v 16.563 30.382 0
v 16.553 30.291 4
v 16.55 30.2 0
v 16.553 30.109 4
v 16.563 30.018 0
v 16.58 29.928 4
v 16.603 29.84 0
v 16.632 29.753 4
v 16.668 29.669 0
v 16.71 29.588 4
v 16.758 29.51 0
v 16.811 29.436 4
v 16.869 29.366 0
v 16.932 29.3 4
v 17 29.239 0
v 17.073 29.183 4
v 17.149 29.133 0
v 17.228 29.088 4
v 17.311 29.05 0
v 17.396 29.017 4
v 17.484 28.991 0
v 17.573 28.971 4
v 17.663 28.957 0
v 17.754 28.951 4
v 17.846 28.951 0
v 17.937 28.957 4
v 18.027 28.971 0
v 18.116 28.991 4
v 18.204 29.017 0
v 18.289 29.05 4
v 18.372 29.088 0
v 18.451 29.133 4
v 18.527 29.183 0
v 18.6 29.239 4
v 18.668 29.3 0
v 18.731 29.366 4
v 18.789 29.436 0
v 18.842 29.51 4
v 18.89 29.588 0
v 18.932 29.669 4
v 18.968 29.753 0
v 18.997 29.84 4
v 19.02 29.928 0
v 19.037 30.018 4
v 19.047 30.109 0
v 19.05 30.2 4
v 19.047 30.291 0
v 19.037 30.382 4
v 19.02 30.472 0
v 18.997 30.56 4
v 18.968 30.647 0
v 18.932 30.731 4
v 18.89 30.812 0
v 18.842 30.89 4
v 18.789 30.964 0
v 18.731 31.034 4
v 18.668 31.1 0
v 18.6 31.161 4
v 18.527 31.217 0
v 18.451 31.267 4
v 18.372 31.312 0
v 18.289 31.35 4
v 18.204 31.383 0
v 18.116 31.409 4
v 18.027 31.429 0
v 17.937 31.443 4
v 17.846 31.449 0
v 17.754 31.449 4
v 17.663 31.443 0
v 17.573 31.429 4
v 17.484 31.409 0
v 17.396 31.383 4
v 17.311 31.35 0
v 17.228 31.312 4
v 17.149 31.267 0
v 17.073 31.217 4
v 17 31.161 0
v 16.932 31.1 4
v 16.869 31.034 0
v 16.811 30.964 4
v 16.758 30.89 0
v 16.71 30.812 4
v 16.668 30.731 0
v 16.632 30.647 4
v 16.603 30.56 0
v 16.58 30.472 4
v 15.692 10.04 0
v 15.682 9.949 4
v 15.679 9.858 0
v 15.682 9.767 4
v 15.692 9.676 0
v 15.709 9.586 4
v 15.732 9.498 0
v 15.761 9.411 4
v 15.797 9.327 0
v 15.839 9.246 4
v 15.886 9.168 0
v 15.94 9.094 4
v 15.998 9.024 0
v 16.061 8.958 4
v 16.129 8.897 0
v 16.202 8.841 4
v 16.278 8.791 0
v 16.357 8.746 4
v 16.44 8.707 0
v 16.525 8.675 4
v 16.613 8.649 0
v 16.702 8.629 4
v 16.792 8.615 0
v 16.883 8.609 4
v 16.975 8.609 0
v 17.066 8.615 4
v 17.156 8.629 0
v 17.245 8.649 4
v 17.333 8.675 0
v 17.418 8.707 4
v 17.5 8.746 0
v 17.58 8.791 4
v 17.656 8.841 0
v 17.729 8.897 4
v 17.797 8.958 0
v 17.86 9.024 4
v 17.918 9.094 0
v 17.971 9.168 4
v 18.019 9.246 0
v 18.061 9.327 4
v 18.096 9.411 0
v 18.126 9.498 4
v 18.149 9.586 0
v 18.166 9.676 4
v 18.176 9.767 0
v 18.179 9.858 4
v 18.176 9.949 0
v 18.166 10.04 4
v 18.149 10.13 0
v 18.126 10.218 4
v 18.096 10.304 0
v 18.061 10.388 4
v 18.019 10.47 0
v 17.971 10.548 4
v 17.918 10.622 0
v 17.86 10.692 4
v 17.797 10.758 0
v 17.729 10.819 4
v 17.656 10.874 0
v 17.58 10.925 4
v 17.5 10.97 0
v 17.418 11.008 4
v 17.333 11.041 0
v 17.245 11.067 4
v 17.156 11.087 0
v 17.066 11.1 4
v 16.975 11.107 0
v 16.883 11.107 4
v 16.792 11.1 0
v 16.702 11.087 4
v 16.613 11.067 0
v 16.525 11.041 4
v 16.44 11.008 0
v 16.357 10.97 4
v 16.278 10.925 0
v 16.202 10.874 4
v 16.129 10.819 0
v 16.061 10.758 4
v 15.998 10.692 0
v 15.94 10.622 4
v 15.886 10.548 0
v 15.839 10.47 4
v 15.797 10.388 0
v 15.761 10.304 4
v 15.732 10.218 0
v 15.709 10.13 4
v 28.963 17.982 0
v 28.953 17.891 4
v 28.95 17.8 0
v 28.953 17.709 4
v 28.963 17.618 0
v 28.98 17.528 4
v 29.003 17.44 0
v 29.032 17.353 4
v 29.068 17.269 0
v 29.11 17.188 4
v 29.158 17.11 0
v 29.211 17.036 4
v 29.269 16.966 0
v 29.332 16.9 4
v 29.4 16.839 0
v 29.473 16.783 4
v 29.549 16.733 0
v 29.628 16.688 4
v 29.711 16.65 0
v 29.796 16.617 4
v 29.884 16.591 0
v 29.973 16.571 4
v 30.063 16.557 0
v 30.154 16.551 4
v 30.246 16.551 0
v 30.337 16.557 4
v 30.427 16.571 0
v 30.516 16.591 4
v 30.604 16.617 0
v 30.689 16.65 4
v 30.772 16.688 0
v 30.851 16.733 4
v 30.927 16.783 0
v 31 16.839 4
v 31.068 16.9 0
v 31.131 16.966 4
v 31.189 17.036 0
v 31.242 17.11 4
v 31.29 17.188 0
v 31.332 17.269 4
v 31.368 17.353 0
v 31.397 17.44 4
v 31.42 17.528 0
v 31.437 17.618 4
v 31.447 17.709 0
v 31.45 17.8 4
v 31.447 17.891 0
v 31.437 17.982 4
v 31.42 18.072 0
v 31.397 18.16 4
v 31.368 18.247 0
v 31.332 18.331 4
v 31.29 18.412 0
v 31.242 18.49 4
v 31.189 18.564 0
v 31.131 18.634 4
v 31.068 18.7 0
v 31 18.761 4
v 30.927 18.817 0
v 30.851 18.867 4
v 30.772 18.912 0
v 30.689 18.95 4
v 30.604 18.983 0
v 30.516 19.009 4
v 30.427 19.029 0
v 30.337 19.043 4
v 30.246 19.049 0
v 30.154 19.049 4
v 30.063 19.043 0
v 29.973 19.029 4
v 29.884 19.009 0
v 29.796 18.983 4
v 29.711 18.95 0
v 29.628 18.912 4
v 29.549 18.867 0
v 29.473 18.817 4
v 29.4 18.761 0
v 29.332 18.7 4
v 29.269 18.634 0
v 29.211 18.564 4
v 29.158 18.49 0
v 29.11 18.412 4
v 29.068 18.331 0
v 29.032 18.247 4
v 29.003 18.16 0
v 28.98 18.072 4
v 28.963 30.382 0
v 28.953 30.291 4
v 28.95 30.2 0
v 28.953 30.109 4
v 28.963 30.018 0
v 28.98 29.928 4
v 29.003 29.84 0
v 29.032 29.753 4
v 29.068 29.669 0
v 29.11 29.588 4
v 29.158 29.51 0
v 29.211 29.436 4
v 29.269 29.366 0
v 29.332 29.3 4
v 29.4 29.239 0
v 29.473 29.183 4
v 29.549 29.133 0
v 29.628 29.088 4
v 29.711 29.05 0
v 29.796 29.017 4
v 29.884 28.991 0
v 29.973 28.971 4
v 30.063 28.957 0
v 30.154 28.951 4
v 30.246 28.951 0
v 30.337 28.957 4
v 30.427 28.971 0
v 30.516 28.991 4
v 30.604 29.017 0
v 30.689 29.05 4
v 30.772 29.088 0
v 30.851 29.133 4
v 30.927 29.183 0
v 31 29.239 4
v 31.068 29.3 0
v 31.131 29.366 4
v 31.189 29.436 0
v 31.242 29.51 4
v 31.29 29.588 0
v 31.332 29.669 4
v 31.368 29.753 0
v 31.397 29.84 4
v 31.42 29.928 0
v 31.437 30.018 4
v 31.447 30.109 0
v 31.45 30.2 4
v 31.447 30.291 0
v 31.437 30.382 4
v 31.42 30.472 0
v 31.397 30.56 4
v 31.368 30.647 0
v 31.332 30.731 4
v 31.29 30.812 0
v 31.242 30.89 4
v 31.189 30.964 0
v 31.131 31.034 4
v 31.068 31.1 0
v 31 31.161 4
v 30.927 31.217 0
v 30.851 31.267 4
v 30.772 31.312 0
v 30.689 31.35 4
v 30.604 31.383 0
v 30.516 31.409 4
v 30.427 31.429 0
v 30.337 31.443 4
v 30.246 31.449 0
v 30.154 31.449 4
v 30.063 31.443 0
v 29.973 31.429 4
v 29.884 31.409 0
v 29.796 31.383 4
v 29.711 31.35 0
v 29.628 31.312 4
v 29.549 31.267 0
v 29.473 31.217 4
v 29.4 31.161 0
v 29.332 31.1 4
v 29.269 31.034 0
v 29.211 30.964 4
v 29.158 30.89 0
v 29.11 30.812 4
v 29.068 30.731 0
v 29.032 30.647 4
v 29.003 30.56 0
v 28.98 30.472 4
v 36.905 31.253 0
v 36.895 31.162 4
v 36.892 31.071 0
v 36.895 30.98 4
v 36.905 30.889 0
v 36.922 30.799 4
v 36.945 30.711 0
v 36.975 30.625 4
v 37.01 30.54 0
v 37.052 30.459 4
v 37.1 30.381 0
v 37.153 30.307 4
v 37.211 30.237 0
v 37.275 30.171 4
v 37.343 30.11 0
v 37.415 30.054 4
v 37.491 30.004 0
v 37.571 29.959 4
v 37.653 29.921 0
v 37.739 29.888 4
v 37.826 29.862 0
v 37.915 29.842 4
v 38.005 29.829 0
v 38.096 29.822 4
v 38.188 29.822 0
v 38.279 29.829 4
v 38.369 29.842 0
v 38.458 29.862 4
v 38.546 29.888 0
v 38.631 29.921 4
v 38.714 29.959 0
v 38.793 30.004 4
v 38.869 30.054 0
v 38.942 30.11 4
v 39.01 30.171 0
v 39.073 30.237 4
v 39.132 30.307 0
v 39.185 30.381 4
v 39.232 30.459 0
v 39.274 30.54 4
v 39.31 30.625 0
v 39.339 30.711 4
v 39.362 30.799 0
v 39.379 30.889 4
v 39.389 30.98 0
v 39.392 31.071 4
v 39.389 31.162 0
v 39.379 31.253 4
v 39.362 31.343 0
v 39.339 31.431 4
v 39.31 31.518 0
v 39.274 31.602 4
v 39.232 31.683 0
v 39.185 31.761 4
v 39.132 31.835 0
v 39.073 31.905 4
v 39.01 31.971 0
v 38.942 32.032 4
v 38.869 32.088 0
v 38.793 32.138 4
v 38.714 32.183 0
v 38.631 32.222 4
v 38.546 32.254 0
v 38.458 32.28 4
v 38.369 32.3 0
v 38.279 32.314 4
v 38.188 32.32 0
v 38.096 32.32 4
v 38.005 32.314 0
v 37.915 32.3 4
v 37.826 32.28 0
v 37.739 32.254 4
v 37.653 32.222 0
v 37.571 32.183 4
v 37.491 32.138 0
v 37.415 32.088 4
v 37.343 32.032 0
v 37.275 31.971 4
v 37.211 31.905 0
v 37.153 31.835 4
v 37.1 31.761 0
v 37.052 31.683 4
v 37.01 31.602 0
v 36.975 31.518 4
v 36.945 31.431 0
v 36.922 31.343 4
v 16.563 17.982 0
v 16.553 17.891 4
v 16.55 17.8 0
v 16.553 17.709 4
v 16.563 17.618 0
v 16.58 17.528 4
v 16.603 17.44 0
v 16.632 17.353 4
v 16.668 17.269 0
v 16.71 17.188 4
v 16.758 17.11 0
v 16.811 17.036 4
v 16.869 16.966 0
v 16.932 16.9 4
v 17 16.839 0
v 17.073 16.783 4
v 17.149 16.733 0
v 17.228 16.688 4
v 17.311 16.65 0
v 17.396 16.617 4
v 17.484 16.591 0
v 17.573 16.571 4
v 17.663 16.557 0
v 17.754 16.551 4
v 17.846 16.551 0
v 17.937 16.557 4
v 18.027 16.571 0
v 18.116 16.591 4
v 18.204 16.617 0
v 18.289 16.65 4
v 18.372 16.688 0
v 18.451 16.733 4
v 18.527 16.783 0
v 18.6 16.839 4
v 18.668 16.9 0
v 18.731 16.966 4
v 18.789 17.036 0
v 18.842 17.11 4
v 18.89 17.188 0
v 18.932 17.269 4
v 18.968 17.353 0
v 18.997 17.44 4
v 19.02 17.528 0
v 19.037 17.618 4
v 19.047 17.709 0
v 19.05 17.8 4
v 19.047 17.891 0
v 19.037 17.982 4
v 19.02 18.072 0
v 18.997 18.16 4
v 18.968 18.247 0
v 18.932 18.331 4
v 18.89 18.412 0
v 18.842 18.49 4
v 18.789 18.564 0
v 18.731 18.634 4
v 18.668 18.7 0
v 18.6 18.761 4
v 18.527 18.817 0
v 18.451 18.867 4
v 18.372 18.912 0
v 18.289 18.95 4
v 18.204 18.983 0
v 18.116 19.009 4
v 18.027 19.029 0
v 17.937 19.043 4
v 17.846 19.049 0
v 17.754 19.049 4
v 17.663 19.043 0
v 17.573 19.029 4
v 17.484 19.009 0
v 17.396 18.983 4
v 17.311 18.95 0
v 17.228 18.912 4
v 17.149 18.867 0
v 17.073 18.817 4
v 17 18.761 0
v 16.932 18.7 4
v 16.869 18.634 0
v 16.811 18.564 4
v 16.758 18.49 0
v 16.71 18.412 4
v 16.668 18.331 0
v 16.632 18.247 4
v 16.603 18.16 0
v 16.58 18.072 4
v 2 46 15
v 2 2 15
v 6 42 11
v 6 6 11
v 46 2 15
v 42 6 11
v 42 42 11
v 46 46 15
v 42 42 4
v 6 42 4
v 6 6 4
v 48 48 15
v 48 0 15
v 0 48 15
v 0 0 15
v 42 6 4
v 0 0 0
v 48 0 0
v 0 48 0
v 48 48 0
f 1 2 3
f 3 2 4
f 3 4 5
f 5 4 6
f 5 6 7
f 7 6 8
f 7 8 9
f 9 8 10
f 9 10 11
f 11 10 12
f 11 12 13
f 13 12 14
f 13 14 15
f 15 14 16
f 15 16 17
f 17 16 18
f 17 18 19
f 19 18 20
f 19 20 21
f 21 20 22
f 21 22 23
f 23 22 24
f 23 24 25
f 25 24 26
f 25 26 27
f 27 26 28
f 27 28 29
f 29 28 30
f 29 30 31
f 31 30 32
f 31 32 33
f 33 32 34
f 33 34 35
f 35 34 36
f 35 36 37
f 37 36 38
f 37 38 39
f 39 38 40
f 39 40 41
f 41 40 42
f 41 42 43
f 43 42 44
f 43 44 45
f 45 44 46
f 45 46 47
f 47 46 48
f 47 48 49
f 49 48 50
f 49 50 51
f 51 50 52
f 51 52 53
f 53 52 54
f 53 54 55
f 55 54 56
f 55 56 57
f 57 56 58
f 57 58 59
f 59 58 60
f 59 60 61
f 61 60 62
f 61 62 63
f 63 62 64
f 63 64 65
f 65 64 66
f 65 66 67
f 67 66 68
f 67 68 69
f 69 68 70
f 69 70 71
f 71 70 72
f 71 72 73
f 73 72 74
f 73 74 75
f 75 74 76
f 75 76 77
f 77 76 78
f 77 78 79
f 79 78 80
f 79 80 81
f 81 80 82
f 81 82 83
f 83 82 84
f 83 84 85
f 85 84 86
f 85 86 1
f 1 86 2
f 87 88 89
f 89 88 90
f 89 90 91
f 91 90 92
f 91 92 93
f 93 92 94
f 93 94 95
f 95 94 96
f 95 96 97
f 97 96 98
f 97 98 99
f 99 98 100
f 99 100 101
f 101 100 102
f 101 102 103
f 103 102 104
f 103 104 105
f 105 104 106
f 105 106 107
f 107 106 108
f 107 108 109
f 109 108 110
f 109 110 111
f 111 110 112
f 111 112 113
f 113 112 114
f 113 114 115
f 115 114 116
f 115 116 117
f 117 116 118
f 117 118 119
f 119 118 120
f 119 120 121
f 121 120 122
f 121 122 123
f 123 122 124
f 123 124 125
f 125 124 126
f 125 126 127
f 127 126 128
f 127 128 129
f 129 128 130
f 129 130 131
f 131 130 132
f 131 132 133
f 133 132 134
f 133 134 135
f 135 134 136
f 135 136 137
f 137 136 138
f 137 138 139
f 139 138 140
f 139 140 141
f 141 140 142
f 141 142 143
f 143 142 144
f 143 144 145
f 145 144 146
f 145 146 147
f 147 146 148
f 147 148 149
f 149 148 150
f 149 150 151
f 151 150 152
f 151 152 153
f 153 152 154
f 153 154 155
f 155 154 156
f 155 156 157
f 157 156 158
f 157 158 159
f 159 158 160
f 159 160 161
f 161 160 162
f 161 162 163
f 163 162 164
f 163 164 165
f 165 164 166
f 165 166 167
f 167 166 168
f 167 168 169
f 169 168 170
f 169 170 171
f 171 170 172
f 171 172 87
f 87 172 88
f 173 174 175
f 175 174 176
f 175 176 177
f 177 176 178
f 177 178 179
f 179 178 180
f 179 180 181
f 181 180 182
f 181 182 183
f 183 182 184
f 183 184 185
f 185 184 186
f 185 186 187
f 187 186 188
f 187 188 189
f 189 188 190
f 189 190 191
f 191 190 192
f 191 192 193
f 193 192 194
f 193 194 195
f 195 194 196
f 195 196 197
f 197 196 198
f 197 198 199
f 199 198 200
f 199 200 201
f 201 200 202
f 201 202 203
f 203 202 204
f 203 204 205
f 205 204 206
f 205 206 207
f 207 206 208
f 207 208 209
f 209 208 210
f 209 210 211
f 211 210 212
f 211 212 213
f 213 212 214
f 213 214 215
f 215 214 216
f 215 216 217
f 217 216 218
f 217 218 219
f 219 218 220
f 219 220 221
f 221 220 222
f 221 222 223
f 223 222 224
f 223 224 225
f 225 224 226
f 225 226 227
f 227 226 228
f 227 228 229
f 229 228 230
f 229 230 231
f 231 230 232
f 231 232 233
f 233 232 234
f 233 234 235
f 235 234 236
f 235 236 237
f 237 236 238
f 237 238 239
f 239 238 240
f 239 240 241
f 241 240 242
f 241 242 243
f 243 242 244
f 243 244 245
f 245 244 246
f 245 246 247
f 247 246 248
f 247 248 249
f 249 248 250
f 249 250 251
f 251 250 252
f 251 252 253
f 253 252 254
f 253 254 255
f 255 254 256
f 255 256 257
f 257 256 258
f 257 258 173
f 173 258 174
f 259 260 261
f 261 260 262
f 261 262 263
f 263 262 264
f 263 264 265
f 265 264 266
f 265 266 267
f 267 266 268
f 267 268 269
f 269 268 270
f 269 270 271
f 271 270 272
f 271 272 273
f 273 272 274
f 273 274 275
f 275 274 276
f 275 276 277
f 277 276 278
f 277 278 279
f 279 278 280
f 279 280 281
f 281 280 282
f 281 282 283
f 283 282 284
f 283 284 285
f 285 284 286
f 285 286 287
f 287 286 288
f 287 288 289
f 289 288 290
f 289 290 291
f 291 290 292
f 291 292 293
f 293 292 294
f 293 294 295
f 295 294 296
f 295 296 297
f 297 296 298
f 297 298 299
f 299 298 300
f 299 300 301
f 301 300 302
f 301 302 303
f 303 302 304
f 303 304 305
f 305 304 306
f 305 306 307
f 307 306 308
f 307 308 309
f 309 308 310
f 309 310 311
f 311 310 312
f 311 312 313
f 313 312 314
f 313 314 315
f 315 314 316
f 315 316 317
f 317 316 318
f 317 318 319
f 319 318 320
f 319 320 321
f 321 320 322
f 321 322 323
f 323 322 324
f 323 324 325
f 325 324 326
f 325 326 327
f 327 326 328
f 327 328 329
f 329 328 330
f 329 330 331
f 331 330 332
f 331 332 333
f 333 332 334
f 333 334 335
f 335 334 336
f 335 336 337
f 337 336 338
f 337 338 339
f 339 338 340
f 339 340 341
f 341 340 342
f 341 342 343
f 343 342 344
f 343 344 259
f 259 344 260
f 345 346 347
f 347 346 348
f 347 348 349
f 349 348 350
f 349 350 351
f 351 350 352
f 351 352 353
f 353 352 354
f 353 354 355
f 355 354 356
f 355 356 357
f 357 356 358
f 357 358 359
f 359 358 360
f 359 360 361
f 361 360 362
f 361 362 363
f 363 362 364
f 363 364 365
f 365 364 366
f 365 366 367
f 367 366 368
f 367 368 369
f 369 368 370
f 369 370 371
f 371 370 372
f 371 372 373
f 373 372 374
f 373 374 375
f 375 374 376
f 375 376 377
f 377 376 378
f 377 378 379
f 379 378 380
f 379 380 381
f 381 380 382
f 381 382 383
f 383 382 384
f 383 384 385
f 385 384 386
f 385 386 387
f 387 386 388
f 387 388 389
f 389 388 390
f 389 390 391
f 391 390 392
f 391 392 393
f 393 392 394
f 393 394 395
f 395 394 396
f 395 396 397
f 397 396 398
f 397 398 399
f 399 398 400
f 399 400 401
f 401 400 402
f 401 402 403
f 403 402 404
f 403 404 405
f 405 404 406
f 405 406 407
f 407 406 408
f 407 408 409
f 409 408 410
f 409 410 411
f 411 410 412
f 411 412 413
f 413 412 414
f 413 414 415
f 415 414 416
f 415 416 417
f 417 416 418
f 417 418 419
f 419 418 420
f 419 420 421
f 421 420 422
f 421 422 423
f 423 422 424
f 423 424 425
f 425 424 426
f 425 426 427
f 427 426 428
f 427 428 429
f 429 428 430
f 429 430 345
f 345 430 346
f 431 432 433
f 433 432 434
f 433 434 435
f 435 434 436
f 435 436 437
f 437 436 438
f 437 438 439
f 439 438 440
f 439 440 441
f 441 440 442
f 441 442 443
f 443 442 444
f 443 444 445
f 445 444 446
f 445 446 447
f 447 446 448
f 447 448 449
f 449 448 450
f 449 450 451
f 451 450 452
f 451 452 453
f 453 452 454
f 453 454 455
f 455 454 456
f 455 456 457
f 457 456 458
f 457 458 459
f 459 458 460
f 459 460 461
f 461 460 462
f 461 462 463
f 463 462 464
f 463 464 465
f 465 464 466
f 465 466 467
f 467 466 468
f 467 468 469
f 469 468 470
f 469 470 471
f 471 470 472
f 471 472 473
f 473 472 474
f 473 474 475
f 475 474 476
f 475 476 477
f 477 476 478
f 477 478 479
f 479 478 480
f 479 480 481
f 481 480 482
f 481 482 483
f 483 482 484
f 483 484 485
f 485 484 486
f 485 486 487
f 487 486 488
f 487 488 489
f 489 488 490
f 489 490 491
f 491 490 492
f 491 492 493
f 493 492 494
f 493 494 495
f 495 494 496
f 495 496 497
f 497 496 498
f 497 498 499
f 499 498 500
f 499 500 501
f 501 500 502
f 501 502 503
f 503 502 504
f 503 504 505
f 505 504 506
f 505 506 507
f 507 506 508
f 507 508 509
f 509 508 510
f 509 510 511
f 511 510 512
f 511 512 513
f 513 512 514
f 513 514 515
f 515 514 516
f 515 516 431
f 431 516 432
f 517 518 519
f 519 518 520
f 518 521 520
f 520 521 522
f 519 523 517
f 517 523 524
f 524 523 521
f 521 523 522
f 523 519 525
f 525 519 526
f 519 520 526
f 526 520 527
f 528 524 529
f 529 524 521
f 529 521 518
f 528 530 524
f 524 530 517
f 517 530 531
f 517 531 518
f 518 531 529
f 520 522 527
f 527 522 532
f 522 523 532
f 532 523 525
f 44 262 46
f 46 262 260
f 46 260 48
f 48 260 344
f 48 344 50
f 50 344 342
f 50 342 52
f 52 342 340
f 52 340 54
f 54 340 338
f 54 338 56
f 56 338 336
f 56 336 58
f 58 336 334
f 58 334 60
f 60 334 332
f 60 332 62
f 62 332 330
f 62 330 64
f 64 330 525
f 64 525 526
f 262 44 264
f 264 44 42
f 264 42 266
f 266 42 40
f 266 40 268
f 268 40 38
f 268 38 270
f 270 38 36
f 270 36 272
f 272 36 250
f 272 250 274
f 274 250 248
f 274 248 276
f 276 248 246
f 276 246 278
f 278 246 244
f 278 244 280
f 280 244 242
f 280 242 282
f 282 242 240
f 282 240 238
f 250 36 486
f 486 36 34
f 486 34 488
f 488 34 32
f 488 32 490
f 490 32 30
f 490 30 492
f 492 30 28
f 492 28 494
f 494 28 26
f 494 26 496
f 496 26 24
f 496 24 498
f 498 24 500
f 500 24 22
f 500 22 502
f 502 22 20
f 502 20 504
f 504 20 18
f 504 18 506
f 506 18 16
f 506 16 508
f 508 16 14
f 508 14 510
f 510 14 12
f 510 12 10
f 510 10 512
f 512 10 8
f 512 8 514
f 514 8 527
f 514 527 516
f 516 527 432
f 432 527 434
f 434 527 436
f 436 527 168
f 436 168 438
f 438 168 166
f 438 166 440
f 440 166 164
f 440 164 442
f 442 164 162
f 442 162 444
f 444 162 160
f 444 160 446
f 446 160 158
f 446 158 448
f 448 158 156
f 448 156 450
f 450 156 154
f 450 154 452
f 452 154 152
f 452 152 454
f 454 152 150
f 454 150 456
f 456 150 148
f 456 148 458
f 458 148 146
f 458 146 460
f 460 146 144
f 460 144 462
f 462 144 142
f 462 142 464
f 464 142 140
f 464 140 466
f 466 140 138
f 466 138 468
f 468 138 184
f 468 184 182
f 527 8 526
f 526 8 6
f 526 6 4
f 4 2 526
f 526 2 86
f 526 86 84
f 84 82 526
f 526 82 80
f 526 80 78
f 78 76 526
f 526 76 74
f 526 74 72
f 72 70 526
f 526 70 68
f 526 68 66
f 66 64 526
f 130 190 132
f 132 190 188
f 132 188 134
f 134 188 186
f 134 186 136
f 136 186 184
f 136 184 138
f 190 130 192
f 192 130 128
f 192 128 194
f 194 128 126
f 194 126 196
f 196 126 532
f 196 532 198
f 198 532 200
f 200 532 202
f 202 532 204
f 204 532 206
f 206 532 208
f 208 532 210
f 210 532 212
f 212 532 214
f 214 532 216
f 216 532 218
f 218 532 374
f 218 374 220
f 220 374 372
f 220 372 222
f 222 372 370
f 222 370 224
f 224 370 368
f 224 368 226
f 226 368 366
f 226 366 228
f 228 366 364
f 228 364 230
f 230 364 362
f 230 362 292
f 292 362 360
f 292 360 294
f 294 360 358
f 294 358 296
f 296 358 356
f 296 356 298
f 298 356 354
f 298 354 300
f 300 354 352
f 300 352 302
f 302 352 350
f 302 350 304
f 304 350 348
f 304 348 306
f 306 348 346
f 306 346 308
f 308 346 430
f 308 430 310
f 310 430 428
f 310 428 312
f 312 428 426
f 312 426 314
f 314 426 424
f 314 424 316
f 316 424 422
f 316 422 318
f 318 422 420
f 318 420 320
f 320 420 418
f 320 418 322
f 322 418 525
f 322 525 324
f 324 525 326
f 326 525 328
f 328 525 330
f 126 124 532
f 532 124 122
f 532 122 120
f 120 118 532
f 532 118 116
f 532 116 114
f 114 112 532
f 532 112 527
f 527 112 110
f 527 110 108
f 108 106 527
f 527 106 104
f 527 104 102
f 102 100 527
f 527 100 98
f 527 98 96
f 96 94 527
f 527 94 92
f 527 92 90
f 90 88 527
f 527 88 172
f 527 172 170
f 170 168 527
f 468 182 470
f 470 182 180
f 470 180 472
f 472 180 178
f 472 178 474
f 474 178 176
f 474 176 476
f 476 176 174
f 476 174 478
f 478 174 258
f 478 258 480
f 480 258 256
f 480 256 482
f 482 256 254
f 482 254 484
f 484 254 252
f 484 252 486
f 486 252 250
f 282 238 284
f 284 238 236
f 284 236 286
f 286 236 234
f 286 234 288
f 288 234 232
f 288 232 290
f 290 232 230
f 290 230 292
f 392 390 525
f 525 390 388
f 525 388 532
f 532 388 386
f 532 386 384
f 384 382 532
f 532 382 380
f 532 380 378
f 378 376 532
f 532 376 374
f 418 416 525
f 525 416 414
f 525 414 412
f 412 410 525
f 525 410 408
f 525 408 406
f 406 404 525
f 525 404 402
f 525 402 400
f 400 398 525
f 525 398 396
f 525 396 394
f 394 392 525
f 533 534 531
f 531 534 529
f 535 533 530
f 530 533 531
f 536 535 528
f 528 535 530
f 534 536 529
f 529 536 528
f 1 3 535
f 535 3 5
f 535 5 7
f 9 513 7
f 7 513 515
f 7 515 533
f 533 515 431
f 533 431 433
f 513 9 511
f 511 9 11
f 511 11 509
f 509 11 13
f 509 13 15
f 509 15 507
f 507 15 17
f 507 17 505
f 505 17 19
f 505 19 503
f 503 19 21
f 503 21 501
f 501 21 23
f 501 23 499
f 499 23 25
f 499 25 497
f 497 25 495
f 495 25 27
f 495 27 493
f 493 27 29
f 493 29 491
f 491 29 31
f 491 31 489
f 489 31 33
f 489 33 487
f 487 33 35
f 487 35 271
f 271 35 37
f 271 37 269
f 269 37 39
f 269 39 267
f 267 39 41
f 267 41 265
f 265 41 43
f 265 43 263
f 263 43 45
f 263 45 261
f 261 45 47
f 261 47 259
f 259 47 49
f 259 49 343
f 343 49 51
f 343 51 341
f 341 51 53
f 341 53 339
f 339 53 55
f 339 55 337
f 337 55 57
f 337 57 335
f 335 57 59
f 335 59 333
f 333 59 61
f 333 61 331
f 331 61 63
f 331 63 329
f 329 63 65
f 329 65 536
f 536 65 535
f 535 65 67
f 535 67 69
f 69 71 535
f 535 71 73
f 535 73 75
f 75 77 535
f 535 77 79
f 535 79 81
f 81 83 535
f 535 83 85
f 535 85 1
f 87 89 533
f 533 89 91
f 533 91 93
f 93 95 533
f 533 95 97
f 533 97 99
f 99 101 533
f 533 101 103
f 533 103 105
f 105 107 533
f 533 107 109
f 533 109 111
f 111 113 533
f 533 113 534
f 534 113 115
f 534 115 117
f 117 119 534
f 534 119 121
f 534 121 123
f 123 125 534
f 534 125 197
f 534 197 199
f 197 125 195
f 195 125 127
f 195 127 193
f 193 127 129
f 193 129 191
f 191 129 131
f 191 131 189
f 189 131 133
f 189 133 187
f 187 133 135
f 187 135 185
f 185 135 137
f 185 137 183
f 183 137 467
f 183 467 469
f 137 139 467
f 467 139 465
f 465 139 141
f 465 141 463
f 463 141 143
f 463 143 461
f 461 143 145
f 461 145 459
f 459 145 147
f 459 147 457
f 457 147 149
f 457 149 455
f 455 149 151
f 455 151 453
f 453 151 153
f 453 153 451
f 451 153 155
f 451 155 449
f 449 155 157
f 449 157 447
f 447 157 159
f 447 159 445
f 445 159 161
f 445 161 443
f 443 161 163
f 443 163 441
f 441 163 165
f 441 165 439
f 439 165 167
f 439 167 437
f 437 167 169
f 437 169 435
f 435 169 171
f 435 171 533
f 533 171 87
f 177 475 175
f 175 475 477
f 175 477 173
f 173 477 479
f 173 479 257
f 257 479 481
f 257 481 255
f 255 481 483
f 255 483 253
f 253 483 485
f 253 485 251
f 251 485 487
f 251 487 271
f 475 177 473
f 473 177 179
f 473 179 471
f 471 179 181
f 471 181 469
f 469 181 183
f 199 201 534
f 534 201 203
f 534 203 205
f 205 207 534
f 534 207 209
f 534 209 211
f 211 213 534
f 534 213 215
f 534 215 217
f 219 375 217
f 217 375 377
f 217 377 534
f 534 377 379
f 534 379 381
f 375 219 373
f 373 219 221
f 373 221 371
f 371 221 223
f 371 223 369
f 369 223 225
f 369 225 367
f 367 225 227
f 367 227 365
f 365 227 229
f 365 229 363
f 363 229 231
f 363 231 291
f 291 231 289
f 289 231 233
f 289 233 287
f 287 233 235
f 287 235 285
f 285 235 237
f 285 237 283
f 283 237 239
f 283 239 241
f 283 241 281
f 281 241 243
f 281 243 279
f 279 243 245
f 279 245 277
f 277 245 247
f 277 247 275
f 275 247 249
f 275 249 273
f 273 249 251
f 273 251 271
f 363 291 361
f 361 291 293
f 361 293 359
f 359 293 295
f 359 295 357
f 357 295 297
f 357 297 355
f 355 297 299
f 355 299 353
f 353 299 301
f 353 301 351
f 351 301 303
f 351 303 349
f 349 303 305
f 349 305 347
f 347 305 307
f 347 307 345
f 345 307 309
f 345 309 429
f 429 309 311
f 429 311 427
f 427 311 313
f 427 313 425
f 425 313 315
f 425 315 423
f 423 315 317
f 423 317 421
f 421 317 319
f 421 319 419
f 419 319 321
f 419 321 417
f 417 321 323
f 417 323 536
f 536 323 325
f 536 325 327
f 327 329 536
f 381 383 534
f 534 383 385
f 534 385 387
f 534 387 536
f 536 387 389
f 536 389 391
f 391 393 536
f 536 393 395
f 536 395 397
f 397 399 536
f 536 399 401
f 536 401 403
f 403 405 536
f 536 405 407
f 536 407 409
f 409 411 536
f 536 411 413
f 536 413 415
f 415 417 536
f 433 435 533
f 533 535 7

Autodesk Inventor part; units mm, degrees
ref_plane "YZ Plane" through (0, 0, 0) normal (1, 0, 0) x (0, 1, 0)
ref_plane "XZ Plane" through (0, 0, 0) normal (0, 1, 0) x (-1, 0, 0)
ref_plane "XY Plane" through (0, 0, 0) normal (0, 0, 1) x (1, 0, 0)
sketch "Sketch1" plane through (0, 0, 0) normal (0, 0, 1) x (1, 0, 0)
  line L0 (0, 0) -> (48, 0)
  line L1 (48, 0) -> (48, 48)
  line L2 (48, 48) -> (0, 48)
  line L3 (0, 48) -> (0, 0)
  dimension "d0" = 48
  dimension "d1" = 48
extrude "Extrusion1" add sketch "Sketch1" along normal blind 15
sketch "Sketch2" plane through (0, 0, 15) normal (0, 0, 1) x (1, 0, 0)
  line L0 (6, 6) -> (42, 6)
  line L1 (42, 6) -> (42, 42)
  line L2 (42, 42) -> (6, 42)
  line L3 (6, 42) -> (6, 6)
  point P0 (0, 0)
  dimension "d6" = 36
  dimension "d7" = 36
extrude "Extrusion2" cut sketch "Sketch2" against normal blind 11
chamfer "Chamfer1" distance 4 angle 45 4 edges at (42, 24, 15) (24, 42, 15) (6, 24, 15) (24, 6, 15)
sketch "Sketch3" plane through (0, 0, 4) normal (0, 0, 1) x (1, 0, 0)
  line L0 (0, 0) -> (24, 0)
  line L1 (0, 24) -> (0, 0)
  line L2 (46, 46) -> (2, 46) projected
  line L3 (26.6, 24) -> (26.6, 24.8)
  line L4 (26.6, 24.8) -> (30.2, 24.8)
  line L5 (30.2, 24.8) -> (30.2, 23.2)
  line L6 (30.2, 23.2) -> (26.6, 23.2)
  line L7 (24, 21.4) -> (24.8, 21.4)
  line L8 (24.8, 21.4) -> (24.8, 17.8)
  line L9 (24.8, 17.8) -> (23.2, 17.8)
  line L10 (23.2, 17.8) -> (23.2, 21.4)
  line L11 (21.4, 23.2) -> (17.8, 23.2)
  line L12 (17.8, 23.2) -> (17.8, 24.8)
  line L13 (17.8, 24.8) -> (21.4, 24.8)
  line L14 (24, 26.6) -> (24.8, 26.6)
  line L15 (24.8, 26.6) -> (24.8, 30.2)
  line L16 (24.8, 30.2) -> (23.2, 30.2)
  line L17 (23.2, 30.2) -> (23.2, 26.6)
  line L18 (48, 48) -> (0, 48) projected
  line L19 (0, 48) -> (0, 0) projected
  circle A0 centre (38.1421, 31.0711) radius 1.25
  circle A1 centre (16.9289, 9.8579) radius 1.25
  line L20 (21.4, 23.2) -> (21.4, 24.8)
  line L21 (23.2, 26.6) -> (24, 26.6)
  line L22 (26.6, 23.2) -> (26.6, 24)
  line L23 (23.2, 21.4) -> (24, 21.4)
  circle A2 centre (26.6, 21.4) radius 1.25
  circle A3 centre (21.4, 26.6) radius 1.25
  circle A4 centre (26.6, 26.6) radius 1.25
  circle A5 centre (21.4, 21.4) radius 1.25
  line L24 (24, 24) -> (30.2, 24)
  circle A6 centre (30.2, 30.2) radius 1.25
  circle A7 centre (17.8, 30.2) radius 1.25
  circle A8 centre (17.8, 17.8) radius 1.25
  circle A9 centre (30.2, 17.8) radius 1.25
  circle A10 centre (9.8579, 9.8579) radius 1.25
  circle A11 centre (38.1421, 38.1421) radius 1.25
  point P0 (48, 0)
  dimension "d21" = 0.8
  dimension "d22" = 3.6
  dimension "d23" = 1.6
  dimension "d25" = 3.6
  dimension "d26" = 1.6
  dimension "d27" = 3.6
  dimension "d28" = 1.6
  dimension "d30" = 1.6
  dimension "d62" = 2.5
  dimension "d63" = 2.5
  dimension "d64" = 2.5
  dimension "d65" = 2.5
  dimension "d66" = 2.5
  dimension "d67" = 2.5
extrude "Extrusion4" cut sketch "Sketch3" against normal blind 5 contours A0 | A1 | A6 | A7 | A8 | A9
properties part number "one-square"
